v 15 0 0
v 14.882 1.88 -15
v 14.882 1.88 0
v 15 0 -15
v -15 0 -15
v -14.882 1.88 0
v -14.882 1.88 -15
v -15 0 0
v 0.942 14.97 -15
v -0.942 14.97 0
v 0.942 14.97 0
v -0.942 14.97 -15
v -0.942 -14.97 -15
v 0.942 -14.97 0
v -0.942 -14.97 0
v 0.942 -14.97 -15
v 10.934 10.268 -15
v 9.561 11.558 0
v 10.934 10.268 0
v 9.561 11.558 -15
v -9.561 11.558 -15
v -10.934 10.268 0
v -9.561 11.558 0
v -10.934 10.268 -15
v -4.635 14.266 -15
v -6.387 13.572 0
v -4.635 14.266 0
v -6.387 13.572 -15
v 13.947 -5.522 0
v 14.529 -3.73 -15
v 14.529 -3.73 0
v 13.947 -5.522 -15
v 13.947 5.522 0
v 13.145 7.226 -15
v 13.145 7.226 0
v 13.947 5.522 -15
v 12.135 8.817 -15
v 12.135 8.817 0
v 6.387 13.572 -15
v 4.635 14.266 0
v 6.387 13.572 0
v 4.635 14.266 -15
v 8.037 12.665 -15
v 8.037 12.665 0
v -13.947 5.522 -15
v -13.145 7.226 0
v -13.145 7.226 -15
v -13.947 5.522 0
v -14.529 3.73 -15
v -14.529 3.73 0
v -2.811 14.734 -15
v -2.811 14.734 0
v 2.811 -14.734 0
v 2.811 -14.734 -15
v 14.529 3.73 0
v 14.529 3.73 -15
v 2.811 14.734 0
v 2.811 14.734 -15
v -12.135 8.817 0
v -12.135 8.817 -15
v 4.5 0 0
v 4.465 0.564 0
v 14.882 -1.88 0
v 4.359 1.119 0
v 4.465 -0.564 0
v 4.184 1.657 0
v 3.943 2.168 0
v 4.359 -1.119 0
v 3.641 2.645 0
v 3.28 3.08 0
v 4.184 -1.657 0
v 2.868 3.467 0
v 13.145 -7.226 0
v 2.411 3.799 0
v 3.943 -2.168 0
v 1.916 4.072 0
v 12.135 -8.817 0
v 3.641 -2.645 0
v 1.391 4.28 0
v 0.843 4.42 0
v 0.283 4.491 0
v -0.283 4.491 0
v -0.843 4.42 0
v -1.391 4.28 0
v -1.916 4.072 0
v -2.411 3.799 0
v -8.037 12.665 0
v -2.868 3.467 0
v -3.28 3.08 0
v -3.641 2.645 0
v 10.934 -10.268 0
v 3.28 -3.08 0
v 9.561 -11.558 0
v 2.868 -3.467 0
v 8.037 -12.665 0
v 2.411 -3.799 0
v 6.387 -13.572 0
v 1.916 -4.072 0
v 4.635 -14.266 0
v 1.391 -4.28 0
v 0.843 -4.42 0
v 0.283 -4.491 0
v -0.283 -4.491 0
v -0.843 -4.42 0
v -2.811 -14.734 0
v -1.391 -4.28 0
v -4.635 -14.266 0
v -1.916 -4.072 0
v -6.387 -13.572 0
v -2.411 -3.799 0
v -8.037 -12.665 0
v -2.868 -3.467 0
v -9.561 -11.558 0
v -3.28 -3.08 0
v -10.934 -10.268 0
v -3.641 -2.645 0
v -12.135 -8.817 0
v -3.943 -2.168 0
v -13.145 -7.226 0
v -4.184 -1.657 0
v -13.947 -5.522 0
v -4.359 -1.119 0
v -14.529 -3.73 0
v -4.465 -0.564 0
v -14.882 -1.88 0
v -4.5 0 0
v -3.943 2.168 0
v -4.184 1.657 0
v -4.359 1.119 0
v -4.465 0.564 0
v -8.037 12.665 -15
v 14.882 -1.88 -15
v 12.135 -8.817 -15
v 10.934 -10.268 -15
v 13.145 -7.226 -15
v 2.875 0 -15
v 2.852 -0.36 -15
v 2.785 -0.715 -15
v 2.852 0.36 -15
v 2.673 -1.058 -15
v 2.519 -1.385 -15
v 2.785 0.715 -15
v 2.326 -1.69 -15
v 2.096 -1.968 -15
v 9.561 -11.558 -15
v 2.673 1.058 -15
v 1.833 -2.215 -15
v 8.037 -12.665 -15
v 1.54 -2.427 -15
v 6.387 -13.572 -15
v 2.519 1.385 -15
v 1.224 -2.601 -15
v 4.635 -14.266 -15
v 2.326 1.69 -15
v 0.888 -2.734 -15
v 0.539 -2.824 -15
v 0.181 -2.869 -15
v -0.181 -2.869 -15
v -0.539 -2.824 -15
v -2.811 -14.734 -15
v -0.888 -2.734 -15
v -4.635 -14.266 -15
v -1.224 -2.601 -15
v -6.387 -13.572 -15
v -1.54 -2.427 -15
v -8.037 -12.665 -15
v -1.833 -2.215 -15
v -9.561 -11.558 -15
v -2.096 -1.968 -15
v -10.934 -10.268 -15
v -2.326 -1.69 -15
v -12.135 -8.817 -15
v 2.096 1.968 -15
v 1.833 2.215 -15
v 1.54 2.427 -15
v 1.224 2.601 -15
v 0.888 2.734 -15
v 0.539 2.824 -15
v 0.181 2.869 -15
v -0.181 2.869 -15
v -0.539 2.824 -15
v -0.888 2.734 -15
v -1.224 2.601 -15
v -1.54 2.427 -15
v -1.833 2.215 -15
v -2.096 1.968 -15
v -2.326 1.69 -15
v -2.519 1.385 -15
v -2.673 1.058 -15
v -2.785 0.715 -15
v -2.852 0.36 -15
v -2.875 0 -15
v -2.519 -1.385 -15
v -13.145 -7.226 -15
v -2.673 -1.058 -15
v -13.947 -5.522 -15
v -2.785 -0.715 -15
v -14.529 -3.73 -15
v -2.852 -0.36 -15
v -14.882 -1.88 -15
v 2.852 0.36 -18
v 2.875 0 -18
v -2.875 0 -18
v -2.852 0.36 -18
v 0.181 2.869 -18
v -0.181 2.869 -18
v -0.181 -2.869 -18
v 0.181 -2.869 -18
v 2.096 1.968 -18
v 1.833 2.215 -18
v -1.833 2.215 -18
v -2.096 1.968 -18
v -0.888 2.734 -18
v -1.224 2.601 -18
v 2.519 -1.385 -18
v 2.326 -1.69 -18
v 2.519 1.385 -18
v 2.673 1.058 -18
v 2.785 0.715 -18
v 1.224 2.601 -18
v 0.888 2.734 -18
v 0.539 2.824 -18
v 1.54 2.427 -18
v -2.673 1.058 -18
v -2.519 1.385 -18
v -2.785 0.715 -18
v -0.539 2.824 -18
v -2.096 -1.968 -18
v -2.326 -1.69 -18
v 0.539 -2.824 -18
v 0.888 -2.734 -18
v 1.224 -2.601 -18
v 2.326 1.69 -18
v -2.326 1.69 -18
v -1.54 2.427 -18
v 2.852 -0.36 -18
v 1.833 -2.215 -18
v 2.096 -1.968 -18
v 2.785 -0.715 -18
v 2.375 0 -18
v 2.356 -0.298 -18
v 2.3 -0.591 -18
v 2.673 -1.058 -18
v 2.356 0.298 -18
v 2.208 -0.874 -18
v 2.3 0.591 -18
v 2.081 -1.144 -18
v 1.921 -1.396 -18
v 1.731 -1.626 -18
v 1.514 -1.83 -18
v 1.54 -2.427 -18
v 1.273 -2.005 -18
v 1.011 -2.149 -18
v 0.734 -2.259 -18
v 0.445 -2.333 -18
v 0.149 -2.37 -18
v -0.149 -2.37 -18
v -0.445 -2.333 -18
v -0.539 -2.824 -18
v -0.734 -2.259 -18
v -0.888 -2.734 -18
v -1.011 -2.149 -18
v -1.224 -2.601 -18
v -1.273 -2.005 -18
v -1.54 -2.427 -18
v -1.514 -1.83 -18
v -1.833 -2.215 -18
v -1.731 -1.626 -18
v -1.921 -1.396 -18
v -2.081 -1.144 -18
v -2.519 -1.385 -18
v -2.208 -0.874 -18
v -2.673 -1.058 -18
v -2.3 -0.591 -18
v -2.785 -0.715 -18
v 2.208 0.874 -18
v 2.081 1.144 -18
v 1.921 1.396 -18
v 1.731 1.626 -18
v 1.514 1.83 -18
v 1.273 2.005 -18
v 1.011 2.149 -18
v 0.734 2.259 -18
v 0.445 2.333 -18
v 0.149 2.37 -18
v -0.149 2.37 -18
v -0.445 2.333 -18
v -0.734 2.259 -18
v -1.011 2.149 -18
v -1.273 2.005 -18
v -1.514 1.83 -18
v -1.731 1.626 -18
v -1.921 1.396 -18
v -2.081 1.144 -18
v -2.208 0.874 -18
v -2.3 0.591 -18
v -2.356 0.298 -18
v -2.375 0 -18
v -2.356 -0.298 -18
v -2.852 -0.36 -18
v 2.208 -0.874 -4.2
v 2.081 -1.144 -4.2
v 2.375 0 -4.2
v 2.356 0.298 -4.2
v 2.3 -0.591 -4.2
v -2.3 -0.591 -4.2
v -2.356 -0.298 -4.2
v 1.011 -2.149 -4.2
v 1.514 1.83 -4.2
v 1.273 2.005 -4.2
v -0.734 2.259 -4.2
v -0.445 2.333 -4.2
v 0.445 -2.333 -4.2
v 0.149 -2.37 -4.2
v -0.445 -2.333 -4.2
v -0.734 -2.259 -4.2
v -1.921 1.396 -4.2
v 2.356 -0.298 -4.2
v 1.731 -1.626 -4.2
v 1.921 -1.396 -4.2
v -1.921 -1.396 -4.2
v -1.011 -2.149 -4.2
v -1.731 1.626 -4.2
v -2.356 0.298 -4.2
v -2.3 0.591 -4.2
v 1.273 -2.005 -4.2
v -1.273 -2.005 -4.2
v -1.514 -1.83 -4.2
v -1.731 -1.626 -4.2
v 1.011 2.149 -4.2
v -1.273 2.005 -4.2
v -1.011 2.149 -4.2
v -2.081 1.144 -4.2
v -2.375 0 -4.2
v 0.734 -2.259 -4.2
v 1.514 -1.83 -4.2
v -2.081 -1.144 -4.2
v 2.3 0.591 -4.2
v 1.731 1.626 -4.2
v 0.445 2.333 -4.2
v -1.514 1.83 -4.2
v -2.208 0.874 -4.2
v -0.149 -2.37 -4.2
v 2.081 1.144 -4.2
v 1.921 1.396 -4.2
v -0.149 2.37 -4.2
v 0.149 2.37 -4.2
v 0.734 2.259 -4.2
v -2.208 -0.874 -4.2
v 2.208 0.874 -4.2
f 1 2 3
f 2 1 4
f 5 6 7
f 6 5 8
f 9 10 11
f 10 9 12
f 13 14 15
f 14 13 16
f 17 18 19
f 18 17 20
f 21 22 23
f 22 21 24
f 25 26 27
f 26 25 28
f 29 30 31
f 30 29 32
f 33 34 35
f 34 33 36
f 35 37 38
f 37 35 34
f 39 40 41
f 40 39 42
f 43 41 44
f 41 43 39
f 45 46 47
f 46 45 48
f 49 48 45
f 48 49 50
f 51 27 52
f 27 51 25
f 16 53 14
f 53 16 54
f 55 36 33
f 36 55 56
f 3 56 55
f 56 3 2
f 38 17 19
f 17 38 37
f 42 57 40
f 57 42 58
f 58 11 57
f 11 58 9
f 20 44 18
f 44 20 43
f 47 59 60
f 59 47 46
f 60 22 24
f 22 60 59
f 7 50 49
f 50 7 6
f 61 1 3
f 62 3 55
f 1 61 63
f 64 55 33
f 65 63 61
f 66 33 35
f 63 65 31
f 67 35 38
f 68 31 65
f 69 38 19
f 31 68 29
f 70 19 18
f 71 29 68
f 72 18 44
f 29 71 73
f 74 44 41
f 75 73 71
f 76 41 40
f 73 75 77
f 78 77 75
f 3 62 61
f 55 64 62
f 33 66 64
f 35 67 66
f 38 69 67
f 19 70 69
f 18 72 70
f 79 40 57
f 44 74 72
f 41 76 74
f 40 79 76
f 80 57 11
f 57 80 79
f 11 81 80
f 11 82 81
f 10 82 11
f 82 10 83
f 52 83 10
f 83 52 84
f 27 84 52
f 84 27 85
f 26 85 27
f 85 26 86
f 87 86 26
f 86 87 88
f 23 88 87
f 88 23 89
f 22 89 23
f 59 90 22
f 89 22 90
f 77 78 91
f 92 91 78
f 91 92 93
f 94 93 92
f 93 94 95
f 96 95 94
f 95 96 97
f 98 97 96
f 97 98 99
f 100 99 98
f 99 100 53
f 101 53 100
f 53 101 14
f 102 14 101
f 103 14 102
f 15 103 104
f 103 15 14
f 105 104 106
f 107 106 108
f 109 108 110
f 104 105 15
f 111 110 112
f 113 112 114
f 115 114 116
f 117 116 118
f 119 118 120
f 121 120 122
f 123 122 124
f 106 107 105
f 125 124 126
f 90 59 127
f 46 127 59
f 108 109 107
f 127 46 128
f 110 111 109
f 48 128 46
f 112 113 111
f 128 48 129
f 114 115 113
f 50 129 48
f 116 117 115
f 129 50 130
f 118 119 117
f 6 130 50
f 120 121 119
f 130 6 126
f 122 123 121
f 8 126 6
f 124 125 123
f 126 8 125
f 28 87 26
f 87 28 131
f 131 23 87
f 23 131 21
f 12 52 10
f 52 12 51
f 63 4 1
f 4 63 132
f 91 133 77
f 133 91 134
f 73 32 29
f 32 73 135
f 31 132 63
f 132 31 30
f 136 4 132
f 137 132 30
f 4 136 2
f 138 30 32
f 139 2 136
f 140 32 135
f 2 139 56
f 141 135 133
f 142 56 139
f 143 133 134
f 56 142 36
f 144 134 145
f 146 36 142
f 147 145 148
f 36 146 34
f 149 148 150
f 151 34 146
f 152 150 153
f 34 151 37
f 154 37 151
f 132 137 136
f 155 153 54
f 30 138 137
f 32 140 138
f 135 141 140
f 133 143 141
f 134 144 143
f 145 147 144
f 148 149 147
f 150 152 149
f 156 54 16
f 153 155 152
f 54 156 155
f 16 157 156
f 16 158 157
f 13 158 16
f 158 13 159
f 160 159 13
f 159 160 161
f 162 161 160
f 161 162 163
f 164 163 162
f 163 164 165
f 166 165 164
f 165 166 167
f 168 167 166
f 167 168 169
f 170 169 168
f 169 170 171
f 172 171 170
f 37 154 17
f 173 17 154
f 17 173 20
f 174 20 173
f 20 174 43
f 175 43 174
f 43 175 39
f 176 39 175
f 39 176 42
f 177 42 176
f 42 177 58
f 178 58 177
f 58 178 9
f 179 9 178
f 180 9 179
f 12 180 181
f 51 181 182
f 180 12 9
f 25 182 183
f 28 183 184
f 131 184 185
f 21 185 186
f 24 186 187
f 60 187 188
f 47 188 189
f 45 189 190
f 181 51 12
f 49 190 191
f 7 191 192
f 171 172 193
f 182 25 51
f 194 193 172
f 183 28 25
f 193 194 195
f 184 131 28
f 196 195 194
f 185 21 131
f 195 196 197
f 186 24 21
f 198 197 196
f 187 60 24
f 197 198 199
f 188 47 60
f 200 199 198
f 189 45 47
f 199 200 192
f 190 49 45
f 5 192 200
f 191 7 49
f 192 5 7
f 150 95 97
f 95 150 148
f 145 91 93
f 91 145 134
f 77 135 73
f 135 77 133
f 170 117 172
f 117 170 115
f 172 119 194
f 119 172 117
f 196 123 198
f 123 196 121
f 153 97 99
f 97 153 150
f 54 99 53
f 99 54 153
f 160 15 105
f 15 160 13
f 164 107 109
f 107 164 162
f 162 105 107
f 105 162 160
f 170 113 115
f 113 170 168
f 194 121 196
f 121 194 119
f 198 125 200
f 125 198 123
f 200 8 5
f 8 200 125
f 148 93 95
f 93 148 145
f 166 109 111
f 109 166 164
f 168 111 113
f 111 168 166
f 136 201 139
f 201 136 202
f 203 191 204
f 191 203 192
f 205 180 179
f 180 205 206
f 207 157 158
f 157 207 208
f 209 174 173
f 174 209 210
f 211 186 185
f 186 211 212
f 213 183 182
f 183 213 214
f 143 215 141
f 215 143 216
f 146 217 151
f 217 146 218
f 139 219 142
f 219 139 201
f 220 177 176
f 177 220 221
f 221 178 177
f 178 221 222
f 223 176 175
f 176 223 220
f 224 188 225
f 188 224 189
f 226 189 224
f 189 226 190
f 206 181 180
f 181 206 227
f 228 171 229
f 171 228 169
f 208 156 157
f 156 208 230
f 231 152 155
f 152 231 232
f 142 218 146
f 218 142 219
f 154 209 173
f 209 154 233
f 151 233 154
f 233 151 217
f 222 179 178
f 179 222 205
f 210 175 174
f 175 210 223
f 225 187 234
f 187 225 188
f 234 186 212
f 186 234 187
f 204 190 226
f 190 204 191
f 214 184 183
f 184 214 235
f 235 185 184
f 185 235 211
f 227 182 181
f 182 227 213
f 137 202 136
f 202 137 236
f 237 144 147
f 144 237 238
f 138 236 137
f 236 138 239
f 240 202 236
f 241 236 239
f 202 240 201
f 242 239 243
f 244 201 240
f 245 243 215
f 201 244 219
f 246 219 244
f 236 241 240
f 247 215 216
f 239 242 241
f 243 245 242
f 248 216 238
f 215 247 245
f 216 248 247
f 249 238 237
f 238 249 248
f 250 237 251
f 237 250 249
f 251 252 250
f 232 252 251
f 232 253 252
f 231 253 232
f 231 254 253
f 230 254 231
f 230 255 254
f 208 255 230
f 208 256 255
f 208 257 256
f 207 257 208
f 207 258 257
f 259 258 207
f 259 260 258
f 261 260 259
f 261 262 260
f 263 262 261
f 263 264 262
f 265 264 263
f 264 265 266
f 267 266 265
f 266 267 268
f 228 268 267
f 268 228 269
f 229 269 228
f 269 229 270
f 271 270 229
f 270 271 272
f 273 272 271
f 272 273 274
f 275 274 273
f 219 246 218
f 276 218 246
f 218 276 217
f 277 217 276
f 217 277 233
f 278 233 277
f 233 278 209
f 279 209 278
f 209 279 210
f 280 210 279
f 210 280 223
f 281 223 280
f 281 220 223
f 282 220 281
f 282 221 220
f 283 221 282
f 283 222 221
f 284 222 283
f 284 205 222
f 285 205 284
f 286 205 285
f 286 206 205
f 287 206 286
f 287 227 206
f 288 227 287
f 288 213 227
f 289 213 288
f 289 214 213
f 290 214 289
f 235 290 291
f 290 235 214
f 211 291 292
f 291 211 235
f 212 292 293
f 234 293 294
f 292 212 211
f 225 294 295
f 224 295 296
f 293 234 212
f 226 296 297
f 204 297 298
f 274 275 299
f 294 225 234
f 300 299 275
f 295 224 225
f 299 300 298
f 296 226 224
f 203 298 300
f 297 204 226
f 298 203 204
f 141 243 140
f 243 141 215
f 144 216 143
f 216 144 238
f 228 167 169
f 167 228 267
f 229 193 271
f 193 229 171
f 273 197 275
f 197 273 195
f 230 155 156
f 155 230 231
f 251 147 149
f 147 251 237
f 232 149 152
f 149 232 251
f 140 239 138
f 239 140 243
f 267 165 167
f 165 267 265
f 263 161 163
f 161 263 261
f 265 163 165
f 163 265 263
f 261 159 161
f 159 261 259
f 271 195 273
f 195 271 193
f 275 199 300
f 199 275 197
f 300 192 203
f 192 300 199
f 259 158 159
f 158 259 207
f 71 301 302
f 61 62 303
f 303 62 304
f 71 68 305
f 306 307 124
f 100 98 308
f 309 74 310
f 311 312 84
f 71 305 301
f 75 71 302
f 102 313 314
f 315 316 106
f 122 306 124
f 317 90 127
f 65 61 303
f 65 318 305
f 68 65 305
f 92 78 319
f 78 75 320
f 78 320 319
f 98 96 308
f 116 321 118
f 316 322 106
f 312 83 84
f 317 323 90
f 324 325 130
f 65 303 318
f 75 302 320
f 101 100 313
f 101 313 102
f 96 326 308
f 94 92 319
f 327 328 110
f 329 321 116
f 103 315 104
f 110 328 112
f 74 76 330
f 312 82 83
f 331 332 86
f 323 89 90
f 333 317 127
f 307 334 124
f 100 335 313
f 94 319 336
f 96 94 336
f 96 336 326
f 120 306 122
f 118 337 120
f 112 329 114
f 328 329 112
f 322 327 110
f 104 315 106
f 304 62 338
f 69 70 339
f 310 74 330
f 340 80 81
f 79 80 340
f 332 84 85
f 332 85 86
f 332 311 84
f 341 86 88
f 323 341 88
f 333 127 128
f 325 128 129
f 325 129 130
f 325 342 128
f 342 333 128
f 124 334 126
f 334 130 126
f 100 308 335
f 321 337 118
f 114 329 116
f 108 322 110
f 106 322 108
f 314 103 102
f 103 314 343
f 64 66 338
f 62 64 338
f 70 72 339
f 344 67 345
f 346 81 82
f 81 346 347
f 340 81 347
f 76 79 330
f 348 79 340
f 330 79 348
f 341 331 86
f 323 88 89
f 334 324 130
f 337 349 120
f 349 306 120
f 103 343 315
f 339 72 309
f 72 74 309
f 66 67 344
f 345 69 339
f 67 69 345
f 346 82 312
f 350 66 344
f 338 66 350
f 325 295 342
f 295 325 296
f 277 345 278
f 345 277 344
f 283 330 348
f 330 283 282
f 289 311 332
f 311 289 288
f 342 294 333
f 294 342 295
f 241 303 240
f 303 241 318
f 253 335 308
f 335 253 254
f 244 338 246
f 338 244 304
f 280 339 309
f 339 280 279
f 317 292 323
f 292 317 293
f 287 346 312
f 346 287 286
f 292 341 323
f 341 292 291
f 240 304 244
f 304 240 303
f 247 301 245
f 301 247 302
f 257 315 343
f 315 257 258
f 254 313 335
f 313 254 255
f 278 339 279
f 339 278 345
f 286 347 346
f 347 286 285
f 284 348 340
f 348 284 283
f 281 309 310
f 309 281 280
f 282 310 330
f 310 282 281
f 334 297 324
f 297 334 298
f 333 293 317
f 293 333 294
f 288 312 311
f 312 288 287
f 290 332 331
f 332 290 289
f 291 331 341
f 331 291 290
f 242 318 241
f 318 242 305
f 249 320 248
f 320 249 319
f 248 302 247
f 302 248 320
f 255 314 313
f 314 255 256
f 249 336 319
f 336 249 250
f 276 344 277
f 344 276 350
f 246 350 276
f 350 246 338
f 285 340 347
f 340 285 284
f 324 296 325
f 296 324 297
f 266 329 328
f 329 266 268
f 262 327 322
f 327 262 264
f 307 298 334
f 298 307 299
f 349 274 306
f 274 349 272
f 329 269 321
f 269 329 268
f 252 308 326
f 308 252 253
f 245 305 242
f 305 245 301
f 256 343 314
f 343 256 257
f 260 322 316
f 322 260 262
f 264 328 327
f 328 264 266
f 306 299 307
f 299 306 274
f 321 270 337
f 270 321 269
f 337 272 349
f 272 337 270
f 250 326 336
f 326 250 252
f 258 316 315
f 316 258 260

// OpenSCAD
$fn = 50;

difference() {
	union() {
		translate(v = [0, 0, -15.0]) {
			cylinder(h = 15, r = 15.0);
		}
		#translate(v = [0, 0, -18.0]) {
			cylinder(h = 18, r = 2.875);
		}
	}
	union() {
		translate(v = [0, 0, 0]) {
			rotate(a = [0, 0, 0]) {
				difference() {
					union() {
						translate(v = [0, 0, -18.0]) {
							cylinder(h = 18, r = 2.25);
						}
						translate(v = [0, 0, -4.2]) {
							cylinder(h = 4.2, r1 = 2.375, r2 = 4.5);
						}
						translate(v = [0, 0, -18.0]) {
							cylinder(h = 18, r = 2.375);
						}
						translate(v = [0, 0, -18.0]) {
							cylinder(h = 18, r = 2.25);
						}
					}
					union();
				}
			}
		}
	}
}
